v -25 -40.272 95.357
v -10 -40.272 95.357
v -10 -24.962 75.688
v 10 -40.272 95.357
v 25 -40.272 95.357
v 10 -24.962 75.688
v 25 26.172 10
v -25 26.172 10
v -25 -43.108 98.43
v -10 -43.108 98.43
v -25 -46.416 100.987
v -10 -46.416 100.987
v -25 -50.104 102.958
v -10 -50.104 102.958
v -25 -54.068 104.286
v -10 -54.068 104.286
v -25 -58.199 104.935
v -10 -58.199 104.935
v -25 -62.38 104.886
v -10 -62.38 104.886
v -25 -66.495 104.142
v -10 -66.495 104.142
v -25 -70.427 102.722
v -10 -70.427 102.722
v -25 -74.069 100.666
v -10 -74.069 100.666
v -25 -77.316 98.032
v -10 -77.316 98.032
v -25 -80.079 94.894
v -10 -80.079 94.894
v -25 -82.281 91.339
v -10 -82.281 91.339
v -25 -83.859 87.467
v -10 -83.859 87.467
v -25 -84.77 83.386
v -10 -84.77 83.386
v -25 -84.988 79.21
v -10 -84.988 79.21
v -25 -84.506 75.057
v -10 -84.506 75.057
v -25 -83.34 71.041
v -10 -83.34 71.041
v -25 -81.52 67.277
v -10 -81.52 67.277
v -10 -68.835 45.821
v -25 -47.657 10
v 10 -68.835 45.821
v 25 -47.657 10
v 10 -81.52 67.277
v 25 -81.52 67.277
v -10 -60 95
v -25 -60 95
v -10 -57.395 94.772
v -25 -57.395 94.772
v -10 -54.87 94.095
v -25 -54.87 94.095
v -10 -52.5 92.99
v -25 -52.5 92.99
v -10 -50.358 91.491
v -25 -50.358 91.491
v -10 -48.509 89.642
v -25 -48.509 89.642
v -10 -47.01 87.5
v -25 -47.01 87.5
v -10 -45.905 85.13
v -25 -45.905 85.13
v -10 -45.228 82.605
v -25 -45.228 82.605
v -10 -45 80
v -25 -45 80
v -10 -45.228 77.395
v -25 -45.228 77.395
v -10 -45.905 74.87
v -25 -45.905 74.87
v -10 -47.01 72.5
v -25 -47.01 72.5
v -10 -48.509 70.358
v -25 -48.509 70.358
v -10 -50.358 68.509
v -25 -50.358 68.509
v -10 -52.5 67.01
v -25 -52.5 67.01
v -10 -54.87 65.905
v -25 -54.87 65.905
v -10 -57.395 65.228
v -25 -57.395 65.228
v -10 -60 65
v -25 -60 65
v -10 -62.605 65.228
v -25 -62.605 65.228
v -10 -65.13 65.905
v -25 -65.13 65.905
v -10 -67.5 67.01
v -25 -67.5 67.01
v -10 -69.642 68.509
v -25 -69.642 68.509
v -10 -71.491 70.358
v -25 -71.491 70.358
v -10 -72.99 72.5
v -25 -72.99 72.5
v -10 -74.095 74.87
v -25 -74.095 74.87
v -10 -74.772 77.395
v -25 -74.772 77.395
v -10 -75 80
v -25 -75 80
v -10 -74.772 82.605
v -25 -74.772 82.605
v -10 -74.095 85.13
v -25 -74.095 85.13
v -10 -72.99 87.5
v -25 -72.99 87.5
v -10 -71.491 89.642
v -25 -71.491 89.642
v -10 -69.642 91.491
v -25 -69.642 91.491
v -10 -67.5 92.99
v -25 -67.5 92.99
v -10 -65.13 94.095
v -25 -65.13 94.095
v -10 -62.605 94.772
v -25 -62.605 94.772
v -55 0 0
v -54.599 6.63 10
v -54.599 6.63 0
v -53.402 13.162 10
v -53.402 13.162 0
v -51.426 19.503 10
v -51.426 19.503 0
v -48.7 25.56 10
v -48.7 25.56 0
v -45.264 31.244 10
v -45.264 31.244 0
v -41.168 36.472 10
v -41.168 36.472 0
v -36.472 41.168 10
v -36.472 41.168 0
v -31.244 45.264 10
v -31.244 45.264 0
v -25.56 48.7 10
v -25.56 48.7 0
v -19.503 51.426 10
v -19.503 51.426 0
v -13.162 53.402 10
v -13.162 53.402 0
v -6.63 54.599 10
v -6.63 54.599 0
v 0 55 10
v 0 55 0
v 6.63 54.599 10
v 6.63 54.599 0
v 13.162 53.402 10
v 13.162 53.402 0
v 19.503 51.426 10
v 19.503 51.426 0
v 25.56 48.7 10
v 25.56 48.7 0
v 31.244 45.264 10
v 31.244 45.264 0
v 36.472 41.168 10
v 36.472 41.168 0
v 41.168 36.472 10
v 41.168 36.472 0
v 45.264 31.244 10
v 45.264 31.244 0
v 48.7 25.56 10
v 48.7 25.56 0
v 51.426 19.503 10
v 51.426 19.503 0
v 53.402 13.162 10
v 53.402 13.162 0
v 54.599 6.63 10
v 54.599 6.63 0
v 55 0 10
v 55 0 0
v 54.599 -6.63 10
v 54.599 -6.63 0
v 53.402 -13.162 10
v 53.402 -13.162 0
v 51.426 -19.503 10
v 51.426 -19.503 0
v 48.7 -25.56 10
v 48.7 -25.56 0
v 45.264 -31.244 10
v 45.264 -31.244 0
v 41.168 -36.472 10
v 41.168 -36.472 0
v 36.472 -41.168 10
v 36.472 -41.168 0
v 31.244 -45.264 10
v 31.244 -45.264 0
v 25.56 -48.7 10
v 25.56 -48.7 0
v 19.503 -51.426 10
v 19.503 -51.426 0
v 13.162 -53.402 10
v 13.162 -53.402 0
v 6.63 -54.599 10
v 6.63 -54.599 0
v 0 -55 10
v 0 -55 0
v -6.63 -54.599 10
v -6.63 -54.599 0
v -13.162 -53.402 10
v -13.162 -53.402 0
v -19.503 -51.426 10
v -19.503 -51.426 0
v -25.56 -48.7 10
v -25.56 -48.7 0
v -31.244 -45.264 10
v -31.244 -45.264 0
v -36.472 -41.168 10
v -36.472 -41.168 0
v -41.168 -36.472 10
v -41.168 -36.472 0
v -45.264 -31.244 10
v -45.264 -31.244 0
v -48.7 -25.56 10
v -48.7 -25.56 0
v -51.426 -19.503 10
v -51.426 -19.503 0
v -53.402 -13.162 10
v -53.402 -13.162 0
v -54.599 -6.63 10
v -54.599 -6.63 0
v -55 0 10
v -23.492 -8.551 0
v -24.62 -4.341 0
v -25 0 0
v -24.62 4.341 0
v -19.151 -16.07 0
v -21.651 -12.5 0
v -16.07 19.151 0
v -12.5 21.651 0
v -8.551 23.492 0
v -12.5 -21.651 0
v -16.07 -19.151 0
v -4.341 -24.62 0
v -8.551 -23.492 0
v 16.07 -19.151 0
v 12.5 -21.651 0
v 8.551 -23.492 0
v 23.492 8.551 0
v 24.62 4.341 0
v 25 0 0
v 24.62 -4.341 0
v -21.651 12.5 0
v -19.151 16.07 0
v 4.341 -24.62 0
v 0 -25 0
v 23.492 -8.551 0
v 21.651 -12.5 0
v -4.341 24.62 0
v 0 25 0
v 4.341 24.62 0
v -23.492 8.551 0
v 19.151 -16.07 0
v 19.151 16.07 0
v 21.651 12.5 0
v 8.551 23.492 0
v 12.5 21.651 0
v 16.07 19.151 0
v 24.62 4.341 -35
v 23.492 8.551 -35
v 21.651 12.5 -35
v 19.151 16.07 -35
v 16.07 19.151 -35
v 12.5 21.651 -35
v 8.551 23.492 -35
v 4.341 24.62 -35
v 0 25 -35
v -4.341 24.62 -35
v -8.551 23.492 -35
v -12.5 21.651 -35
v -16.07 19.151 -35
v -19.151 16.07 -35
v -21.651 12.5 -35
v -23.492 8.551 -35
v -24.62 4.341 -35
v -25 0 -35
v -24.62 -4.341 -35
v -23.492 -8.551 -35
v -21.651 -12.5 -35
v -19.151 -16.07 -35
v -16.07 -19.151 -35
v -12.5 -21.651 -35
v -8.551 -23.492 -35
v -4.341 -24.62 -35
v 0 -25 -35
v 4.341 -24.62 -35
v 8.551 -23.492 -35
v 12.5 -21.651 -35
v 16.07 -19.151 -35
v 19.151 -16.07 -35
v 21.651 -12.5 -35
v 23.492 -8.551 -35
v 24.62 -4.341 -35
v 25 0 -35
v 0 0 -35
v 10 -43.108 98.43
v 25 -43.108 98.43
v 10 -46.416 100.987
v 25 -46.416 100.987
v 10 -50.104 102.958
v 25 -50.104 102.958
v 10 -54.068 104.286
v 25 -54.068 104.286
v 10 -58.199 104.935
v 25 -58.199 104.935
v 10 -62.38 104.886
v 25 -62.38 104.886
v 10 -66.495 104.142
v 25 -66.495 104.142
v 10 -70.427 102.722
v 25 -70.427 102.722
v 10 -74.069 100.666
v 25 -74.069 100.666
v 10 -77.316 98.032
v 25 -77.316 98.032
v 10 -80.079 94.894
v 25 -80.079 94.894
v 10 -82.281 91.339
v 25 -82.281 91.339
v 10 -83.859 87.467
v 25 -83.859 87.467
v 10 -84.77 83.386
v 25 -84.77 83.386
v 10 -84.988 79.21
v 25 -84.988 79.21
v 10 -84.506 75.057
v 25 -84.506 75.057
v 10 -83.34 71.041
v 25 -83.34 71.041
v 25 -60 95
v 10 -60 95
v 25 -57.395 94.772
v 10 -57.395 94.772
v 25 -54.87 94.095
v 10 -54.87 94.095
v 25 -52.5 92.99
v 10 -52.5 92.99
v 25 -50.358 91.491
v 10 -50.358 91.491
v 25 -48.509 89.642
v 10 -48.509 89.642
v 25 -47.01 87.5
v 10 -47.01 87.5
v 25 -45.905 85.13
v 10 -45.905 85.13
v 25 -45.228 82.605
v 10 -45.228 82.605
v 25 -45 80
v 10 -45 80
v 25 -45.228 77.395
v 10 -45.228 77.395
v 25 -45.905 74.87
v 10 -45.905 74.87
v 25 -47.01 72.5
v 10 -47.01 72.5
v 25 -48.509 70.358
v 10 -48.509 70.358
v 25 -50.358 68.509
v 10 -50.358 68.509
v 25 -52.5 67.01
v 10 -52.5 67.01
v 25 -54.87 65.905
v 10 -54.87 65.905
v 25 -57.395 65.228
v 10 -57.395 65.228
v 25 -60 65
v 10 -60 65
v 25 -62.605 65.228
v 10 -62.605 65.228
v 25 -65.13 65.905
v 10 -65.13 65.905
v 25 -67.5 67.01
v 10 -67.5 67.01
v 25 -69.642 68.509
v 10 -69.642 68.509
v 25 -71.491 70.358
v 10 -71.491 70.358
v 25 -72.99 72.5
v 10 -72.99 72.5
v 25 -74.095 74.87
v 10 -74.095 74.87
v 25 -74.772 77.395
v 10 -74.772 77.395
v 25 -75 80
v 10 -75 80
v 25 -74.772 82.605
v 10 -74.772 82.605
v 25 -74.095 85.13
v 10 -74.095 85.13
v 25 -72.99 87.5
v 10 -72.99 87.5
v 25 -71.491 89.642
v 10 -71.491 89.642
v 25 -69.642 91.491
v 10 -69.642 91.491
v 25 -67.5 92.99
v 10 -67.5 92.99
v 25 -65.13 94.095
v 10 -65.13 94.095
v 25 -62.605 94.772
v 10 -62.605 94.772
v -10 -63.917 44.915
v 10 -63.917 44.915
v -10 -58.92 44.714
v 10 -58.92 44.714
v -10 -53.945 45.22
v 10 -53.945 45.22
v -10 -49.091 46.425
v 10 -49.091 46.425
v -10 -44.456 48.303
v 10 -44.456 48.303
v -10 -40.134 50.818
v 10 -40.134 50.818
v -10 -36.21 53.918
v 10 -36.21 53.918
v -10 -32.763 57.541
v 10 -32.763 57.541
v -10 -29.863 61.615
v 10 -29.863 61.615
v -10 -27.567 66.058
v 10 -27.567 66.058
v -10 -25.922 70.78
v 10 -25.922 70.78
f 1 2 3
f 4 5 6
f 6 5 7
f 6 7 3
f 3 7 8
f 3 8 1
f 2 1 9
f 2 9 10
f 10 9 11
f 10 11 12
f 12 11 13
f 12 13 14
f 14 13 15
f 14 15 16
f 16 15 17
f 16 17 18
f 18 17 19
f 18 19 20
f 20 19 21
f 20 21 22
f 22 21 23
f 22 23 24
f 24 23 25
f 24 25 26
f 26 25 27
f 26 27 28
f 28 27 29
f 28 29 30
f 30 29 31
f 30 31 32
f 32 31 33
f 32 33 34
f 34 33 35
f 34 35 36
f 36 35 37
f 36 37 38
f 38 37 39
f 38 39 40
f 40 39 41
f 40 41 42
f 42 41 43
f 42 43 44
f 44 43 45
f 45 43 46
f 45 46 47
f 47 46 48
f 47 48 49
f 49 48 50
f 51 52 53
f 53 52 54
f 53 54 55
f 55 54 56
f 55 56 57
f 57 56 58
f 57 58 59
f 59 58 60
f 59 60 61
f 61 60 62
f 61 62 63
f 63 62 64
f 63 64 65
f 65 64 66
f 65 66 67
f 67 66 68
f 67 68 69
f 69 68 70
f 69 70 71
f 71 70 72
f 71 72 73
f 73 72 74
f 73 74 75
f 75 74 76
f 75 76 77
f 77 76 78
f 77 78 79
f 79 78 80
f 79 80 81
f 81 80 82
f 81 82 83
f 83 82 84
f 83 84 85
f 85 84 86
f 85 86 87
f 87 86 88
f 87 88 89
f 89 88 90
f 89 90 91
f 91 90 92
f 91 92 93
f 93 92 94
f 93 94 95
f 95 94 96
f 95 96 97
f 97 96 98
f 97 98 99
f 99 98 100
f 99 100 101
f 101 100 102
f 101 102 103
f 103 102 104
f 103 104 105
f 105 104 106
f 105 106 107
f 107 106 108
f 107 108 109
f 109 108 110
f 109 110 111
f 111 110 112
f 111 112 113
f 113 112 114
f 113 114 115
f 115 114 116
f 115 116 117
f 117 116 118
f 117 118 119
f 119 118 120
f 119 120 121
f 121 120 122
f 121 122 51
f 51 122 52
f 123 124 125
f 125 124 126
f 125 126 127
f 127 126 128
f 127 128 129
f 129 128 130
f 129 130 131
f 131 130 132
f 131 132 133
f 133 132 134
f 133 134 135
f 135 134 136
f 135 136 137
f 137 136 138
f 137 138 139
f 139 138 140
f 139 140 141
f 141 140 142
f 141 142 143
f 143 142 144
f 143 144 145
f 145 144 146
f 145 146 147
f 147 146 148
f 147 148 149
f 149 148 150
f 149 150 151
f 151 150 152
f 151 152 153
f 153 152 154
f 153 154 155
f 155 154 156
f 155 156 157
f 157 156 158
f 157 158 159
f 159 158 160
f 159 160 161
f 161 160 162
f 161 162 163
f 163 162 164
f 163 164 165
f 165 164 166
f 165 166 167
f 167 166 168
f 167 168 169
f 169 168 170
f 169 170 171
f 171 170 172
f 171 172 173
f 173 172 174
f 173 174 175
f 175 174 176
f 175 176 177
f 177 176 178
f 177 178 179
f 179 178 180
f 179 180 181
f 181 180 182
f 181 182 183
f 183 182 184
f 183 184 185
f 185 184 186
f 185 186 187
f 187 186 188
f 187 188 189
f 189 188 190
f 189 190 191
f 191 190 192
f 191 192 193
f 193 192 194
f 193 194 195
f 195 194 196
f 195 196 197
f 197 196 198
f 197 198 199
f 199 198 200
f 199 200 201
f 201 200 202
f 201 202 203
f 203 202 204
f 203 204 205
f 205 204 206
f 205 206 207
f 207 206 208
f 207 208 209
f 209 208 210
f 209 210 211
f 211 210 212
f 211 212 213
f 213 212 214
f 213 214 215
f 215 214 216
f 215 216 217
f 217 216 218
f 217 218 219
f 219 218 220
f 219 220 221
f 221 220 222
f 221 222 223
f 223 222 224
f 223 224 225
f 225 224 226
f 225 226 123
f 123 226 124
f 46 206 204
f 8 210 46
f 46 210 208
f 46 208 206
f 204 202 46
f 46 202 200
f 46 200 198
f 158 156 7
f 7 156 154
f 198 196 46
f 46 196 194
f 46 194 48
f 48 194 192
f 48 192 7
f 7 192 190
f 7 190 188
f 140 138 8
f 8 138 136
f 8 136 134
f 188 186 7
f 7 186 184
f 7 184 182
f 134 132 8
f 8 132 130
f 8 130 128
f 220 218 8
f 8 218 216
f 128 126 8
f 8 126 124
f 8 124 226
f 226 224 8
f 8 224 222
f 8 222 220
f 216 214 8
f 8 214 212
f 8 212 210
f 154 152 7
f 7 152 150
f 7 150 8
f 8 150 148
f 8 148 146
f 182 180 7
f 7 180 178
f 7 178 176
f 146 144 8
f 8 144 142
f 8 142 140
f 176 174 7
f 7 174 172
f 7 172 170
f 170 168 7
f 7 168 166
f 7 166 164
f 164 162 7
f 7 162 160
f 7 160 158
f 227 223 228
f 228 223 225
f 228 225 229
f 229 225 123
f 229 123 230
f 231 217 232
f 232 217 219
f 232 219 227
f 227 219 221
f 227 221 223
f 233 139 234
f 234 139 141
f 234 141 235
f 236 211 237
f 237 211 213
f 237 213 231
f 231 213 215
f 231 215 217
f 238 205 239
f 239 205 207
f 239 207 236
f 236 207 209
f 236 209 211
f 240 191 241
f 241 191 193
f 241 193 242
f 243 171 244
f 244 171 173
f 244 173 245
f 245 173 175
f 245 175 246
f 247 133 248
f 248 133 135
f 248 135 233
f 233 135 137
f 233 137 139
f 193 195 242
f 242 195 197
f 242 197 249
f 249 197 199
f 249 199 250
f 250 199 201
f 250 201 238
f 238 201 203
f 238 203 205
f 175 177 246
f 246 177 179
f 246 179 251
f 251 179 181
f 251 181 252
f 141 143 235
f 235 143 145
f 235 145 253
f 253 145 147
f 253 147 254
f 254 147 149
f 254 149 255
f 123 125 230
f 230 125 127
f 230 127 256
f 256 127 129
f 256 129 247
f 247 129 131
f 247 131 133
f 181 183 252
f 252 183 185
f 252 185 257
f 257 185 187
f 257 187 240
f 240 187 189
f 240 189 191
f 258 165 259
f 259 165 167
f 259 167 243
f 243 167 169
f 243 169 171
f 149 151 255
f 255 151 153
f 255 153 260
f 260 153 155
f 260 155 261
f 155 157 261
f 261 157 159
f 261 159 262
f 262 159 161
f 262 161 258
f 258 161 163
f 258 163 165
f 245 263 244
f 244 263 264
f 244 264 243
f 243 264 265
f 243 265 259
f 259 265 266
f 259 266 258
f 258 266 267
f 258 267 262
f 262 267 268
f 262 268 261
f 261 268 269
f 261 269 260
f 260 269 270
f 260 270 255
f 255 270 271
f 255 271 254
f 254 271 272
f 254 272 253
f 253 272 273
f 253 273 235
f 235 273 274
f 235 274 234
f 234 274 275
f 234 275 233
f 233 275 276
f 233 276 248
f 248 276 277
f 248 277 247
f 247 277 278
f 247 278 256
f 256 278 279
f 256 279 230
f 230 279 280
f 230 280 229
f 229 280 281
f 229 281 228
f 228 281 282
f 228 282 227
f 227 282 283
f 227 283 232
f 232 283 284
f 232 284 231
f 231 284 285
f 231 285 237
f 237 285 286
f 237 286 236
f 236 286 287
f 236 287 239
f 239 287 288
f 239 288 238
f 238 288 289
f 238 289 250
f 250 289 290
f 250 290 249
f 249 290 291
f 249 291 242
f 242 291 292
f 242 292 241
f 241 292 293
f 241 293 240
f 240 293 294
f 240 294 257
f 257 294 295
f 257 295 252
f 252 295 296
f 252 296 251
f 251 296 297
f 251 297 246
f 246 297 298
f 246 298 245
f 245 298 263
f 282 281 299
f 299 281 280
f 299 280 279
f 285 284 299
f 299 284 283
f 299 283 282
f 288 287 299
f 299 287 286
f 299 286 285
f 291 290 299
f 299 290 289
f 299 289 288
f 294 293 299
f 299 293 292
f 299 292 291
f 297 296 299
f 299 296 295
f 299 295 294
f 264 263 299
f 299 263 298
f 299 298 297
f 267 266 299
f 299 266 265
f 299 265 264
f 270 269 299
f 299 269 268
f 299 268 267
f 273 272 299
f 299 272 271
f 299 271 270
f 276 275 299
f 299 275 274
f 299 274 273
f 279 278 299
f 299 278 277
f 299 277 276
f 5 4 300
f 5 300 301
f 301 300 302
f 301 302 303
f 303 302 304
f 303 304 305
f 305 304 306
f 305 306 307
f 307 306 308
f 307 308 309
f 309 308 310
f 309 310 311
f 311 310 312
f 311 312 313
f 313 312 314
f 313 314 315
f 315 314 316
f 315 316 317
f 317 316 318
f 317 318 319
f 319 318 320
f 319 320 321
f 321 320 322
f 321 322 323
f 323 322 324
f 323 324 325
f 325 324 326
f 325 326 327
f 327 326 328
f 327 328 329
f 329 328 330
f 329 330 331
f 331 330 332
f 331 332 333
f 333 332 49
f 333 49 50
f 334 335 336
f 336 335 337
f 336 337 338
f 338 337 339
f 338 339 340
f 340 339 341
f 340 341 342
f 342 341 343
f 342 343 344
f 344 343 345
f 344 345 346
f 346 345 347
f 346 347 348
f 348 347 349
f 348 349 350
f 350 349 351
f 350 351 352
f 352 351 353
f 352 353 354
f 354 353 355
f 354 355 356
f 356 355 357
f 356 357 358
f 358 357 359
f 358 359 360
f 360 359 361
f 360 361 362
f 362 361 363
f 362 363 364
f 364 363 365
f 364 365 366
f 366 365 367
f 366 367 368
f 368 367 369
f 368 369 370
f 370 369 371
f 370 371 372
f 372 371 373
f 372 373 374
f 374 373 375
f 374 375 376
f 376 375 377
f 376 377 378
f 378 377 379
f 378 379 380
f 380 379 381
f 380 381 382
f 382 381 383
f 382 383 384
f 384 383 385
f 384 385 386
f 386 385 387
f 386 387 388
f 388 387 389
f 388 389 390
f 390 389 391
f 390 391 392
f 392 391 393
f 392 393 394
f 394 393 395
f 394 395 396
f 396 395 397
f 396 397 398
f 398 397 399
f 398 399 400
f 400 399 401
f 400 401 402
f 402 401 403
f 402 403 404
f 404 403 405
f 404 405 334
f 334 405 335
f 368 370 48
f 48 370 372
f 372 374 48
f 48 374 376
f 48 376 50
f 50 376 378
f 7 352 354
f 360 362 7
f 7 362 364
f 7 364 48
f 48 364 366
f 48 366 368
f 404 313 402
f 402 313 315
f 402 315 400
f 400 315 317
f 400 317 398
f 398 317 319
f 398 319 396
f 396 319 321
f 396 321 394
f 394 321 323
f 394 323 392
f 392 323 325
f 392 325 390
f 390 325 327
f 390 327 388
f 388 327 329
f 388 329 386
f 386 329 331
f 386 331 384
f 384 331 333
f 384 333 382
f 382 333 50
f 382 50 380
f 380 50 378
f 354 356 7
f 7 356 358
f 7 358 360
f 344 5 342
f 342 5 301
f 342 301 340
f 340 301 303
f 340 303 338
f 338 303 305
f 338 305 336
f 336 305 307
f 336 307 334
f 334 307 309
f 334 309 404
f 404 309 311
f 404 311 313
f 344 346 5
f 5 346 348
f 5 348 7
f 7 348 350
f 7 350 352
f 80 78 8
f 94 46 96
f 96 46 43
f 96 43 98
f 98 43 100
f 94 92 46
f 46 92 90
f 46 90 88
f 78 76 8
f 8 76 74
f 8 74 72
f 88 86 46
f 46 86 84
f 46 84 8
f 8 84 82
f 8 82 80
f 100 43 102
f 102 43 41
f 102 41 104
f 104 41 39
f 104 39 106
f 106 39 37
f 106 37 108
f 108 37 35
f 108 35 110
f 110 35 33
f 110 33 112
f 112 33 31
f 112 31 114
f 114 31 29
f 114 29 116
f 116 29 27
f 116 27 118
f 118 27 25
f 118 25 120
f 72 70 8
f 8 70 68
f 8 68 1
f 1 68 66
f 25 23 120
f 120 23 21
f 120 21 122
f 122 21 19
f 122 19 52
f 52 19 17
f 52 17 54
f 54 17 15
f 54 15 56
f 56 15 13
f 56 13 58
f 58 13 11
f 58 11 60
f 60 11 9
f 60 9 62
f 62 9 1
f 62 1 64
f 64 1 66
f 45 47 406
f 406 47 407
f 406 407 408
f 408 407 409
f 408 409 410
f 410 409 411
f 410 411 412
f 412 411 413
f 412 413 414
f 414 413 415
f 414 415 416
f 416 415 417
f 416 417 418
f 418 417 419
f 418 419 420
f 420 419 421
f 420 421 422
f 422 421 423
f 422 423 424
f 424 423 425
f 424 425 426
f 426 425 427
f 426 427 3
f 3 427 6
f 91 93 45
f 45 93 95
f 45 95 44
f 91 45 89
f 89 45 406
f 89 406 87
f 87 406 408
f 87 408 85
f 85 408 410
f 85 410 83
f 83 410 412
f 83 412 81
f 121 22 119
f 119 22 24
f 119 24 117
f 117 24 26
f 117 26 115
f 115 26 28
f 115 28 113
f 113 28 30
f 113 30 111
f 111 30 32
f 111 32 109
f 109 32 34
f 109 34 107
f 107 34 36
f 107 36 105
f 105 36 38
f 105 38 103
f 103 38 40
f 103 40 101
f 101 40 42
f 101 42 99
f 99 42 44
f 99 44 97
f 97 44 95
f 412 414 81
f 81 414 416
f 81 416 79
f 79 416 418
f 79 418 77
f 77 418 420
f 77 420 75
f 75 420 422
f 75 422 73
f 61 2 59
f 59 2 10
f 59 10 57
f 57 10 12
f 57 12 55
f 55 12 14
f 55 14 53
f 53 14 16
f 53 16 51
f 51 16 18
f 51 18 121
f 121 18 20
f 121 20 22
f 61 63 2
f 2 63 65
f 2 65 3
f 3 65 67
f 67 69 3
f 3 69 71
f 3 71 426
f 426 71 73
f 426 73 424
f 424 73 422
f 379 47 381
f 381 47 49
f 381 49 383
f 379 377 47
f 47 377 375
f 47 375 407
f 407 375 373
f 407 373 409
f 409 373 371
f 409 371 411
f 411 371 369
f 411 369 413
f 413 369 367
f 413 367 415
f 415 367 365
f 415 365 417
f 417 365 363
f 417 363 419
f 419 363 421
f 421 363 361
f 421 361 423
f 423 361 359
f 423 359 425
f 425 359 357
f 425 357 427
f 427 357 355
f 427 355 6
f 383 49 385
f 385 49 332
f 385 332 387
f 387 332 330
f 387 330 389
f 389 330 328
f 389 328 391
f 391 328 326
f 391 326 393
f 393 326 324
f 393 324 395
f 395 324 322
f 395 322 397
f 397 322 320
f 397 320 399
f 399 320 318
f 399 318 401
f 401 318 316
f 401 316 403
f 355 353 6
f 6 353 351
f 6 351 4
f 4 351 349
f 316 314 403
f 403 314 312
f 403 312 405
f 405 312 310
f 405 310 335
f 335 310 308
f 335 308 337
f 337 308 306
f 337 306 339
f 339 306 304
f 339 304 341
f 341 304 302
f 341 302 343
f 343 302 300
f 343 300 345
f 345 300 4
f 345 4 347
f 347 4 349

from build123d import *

# Parameters (mm, degrees)
SKETCH_1_R          = 55
EXTRUDE_1_DEPTH     = 10
SKETCH_2_R          = 25
EXTRUDE_2_DEPTH     = 35
SKETCH_3_R          = 25
SKETCH_3_R_2        = 15
EXTRUDE_3_DEPTH     = 25
SKETCH_6_R          = 35.302710026
CUT_EXTRUDE_2_DEPTH = 10


with BuildPart() as part:
    # 草图1 → 凸台-拉伸1 (new body)
    with BuildSketch(Plane.XY):
        Circle(SKETCH_1_R)
    extrude(amount=EXTRUDE_1_DEPTH)

    # 草图2 → 凸台-拉伸2 (add)
    with BuildSketch(Plane(origin=(0, 0, 0), x_dir=(-1, 0, 0), z_dir=(0, 0, -1))):
        with Locations(Location((0, 0, 0), (0, 0, 180))):
            Circle(SKETCH_2_R)
    extrude(amount=EXTRUDE_2_DEPTH)

    # 草图3 → 凸台-拉伸3 (add, symmetric)
    # profile 1 of 2: a face of its own
    with BuildSketch(Plane(origin=(0, 0, 0), x_dir=(0, 0, -1), z_dir=(1, 0, 0))):
        with BuildLine():
            Line((-67.276717973, -81.520178774), (-10, -47.656713047))
            Line((-10, -47.656713047), (-10, 26.1722221))
            Line((-10, 26.1722221), (-95.356612975, -40.272495395))
            ThreePointArc((-95.356612975, -40.272495395), (-69.020822535, -37.539865045), (-55, -60))
            ThreePointArc((-55, -60), (-58.285004597, -72.387855935), (-67.276717973, -81.520178774))
        make_face()
    # profile 2 of 2: a face of its own
    with BuildSketch(Plane(origin=(0, 0, 0), x_dir=(0, 0, -1), z_dir=(1, 0, 0))):
        with Locations((-80, -60)):
            Circle(SKETCH_3_R)
        with Locations((-80, -60)):
            Circle(SKETCH_3_R_2, mode=Mode.SUBTRACT)
    extrude(amount=EXTRUDE_3_DEPTH, both=True)

    # 草图6 → 切除-拉伸2 (cut, symmetric)
    with BuildSketch(Plane(origin=(0, 0, 0), x_dir=(0, 0, -1), z_dir=(1, 0, 0))):
        with Locations((-80, -60)):
            Circle(SKETCH_6_R)
    extrude(amount=CUT_EXTRUDE_2_DEPTH, both=True, mode=Mode.SUBTRACT)


solid = part.part
